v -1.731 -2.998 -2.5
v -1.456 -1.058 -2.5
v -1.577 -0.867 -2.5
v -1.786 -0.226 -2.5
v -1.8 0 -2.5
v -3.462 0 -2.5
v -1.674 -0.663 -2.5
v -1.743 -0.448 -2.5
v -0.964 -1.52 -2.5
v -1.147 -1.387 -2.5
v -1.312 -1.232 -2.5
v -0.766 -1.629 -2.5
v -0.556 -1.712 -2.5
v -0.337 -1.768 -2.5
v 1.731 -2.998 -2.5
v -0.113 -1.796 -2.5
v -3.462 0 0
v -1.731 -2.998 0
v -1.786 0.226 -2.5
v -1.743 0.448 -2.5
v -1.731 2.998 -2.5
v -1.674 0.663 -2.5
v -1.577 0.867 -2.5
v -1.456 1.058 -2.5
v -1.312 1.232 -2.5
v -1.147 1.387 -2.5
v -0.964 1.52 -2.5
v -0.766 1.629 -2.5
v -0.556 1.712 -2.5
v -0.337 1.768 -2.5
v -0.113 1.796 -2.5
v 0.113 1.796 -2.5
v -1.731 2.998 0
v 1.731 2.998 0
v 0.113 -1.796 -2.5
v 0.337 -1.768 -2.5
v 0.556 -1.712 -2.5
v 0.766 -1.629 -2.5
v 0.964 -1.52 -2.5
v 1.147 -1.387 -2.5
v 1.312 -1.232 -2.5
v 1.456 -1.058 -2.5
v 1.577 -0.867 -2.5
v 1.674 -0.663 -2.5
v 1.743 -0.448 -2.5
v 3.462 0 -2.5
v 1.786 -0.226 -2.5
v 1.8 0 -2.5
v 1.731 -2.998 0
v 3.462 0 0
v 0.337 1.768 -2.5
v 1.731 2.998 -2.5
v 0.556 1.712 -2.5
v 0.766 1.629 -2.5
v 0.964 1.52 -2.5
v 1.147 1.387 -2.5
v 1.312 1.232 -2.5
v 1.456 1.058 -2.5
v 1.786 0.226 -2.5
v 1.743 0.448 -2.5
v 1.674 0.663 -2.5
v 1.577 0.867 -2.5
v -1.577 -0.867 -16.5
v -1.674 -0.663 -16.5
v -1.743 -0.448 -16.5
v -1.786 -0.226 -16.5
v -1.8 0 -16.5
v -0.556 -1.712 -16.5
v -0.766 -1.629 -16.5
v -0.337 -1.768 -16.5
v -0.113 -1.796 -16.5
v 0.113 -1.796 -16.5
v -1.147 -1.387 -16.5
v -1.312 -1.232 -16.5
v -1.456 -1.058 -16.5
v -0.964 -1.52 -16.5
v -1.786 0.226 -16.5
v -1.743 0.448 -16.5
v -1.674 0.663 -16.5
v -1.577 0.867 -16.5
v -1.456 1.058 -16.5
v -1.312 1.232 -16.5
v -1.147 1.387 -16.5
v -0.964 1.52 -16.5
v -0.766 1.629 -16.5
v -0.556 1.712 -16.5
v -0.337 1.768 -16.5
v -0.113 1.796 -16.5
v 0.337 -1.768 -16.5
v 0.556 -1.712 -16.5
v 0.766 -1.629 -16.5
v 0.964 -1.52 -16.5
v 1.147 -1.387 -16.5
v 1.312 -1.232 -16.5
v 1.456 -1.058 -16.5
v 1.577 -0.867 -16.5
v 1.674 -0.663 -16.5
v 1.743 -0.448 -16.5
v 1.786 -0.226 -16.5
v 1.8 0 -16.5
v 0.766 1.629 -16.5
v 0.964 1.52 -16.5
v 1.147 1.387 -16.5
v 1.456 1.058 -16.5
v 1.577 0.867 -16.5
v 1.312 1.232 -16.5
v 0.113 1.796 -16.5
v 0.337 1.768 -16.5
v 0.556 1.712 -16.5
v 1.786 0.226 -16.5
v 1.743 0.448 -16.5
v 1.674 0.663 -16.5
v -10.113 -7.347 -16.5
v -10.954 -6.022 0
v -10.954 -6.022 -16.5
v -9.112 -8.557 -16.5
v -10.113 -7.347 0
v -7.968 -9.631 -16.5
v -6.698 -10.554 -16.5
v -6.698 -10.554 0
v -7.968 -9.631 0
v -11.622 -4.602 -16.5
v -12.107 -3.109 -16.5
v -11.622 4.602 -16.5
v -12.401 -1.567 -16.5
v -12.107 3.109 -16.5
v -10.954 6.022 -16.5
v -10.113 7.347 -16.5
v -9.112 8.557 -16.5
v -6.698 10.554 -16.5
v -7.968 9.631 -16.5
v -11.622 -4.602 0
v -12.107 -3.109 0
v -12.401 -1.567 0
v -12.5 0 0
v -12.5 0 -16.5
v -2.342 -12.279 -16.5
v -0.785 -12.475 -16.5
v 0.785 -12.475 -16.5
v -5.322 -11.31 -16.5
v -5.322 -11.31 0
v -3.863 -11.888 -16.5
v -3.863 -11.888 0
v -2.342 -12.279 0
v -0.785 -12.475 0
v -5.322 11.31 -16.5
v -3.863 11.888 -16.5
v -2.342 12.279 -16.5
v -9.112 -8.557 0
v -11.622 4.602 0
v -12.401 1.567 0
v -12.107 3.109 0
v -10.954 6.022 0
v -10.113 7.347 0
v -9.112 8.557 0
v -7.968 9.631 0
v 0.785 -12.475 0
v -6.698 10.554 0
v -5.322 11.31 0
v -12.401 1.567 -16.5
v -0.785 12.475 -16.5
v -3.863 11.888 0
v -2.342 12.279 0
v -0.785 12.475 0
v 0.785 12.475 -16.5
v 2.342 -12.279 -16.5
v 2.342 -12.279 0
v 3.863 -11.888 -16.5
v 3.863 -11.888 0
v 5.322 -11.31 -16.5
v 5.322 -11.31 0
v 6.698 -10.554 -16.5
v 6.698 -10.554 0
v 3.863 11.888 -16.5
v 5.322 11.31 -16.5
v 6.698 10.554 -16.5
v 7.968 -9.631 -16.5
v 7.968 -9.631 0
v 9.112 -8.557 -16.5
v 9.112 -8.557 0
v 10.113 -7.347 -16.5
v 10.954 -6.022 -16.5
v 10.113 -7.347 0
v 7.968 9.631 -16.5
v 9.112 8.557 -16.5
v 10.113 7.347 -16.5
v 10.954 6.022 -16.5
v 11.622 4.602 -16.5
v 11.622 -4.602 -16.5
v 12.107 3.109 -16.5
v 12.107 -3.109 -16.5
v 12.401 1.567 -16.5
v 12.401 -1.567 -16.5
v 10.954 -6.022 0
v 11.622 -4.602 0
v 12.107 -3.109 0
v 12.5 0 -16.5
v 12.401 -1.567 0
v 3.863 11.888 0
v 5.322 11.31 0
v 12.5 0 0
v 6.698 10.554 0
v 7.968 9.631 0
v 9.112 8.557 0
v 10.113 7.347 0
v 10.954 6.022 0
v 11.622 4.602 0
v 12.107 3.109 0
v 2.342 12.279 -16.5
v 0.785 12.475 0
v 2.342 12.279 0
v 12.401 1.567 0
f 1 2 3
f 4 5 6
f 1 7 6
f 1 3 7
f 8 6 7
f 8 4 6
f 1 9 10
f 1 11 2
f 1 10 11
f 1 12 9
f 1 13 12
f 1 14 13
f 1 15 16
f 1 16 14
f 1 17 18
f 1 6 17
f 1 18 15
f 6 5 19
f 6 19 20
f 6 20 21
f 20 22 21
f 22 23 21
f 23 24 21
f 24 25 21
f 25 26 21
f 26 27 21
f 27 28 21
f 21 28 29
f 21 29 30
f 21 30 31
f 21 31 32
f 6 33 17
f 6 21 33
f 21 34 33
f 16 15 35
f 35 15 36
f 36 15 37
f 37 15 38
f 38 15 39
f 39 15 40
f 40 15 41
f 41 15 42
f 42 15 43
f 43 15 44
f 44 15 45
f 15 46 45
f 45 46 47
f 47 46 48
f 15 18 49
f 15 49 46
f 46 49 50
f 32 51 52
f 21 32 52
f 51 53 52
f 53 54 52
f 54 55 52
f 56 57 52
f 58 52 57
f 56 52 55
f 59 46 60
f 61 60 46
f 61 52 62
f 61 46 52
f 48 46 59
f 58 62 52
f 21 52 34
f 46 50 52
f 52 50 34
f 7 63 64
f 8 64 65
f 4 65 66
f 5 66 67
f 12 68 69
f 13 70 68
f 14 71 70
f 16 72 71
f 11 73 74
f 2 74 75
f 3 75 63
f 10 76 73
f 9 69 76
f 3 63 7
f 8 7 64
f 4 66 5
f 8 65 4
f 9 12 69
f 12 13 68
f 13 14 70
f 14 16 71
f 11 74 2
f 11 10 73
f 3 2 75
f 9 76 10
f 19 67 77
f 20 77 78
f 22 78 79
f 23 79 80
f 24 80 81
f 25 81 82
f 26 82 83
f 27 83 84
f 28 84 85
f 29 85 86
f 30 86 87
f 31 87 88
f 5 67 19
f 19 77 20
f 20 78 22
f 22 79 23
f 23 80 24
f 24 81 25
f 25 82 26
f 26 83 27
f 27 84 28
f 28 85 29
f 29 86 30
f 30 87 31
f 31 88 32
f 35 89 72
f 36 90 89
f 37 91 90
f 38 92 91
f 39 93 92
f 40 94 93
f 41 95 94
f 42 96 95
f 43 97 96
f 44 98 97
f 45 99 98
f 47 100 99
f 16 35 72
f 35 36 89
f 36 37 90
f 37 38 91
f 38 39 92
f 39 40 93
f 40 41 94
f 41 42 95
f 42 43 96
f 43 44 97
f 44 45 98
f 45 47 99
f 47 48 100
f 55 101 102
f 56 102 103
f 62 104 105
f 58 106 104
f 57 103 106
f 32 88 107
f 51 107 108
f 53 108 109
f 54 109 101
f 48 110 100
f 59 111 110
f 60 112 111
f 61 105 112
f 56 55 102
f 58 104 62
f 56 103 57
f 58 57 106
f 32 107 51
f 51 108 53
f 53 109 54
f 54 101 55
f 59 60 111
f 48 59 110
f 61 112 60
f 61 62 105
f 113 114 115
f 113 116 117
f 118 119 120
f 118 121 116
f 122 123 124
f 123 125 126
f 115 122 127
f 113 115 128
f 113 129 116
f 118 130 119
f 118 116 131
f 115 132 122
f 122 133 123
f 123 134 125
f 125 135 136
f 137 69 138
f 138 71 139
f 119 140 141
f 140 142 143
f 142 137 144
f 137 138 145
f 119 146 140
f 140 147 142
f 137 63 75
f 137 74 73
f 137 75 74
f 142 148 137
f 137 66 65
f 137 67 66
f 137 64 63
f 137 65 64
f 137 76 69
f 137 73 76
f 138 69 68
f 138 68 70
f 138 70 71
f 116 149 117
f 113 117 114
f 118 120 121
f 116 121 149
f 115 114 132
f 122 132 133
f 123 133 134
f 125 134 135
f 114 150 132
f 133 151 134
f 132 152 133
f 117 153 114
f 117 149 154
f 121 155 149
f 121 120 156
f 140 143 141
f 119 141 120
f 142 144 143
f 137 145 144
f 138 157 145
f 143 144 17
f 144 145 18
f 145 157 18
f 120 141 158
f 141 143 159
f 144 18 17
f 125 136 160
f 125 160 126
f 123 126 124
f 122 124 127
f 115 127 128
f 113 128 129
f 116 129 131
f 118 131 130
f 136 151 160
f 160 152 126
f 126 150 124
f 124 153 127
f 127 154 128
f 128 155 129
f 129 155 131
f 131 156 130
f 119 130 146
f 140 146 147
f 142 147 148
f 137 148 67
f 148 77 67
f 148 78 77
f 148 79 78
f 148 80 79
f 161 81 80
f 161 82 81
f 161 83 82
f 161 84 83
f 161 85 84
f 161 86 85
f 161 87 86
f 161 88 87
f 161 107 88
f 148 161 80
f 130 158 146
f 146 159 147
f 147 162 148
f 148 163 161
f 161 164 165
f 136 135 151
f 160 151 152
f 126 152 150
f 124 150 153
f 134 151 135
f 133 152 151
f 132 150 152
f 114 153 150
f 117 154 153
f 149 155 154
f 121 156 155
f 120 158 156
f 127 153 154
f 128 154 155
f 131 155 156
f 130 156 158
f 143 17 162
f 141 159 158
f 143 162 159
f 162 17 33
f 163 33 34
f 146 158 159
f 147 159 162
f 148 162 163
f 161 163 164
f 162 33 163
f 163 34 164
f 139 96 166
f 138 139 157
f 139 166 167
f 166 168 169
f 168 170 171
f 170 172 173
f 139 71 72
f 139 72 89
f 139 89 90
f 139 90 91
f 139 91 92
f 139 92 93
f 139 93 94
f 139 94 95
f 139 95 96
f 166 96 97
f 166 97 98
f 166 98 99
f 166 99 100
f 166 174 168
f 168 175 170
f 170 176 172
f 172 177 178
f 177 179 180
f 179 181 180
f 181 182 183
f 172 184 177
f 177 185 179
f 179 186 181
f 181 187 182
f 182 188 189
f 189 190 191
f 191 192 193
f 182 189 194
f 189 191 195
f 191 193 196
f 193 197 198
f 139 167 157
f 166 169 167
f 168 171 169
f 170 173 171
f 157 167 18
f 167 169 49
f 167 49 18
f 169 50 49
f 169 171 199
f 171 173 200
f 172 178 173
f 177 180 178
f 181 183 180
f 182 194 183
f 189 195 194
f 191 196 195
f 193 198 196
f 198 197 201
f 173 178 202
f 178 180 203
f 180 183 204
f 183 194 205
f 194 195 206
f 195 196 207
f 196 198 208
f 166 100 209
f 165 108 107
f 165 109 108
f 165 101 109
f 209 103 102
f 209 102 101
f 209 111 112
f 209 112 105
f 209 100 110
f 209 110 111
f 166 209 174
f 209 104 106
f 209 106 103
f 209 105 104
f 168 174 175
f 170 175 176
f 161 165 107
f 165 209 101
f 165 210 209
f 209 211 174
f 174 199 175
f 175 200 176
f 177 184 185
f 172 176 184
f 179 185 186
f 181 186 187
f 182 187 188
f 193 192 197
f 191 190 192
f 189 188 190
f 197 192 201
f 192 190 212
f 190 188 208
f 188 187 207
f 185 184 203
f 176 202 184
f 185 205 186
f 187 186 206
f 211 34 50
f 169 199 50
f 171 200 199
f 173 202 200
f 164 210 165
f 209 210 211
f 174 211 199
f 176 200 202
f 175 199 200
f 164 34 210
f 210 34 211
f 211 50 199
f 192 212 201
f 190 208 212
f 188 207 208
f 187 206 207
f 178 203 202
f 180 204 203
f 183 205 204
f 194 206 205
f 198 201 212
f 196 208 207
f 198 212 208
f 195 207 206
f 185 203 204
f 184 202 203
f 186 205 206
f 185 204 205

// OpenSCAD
$fn = 50;

difference() {
	union() {
		translate(v = [0, 0, -16.5]) {
			cylinder(h = 16.5, r = 12.5);
		}
	}
	union() {
		translate(v = [0, 0, 0]) {
			rotate(a = [0, 0, 0]) {
				difference() {
					union() {
						translate(v = [0, 0, -2.5]) {
							linear_extrude(height = 2.5) {
								polygon(points = [[3.4619999999999997, 0.0], [1.7310000000000003, 2.9981799479017264], [-1.7309999999999992, 2.9981799479017264], [-3.4619999999999997, 4.2397272186481365e-16], [-1.7310000000000014, -2.998179947901726], [1.7309999999999977, -2.9981799479017277]]);
							}
						}
					}
					union();
				}
			}
		}
		#translate(v = [0, 0, -100.0]) {
			cylinder(h = 200, r = 1.8);
		}
	}
}
